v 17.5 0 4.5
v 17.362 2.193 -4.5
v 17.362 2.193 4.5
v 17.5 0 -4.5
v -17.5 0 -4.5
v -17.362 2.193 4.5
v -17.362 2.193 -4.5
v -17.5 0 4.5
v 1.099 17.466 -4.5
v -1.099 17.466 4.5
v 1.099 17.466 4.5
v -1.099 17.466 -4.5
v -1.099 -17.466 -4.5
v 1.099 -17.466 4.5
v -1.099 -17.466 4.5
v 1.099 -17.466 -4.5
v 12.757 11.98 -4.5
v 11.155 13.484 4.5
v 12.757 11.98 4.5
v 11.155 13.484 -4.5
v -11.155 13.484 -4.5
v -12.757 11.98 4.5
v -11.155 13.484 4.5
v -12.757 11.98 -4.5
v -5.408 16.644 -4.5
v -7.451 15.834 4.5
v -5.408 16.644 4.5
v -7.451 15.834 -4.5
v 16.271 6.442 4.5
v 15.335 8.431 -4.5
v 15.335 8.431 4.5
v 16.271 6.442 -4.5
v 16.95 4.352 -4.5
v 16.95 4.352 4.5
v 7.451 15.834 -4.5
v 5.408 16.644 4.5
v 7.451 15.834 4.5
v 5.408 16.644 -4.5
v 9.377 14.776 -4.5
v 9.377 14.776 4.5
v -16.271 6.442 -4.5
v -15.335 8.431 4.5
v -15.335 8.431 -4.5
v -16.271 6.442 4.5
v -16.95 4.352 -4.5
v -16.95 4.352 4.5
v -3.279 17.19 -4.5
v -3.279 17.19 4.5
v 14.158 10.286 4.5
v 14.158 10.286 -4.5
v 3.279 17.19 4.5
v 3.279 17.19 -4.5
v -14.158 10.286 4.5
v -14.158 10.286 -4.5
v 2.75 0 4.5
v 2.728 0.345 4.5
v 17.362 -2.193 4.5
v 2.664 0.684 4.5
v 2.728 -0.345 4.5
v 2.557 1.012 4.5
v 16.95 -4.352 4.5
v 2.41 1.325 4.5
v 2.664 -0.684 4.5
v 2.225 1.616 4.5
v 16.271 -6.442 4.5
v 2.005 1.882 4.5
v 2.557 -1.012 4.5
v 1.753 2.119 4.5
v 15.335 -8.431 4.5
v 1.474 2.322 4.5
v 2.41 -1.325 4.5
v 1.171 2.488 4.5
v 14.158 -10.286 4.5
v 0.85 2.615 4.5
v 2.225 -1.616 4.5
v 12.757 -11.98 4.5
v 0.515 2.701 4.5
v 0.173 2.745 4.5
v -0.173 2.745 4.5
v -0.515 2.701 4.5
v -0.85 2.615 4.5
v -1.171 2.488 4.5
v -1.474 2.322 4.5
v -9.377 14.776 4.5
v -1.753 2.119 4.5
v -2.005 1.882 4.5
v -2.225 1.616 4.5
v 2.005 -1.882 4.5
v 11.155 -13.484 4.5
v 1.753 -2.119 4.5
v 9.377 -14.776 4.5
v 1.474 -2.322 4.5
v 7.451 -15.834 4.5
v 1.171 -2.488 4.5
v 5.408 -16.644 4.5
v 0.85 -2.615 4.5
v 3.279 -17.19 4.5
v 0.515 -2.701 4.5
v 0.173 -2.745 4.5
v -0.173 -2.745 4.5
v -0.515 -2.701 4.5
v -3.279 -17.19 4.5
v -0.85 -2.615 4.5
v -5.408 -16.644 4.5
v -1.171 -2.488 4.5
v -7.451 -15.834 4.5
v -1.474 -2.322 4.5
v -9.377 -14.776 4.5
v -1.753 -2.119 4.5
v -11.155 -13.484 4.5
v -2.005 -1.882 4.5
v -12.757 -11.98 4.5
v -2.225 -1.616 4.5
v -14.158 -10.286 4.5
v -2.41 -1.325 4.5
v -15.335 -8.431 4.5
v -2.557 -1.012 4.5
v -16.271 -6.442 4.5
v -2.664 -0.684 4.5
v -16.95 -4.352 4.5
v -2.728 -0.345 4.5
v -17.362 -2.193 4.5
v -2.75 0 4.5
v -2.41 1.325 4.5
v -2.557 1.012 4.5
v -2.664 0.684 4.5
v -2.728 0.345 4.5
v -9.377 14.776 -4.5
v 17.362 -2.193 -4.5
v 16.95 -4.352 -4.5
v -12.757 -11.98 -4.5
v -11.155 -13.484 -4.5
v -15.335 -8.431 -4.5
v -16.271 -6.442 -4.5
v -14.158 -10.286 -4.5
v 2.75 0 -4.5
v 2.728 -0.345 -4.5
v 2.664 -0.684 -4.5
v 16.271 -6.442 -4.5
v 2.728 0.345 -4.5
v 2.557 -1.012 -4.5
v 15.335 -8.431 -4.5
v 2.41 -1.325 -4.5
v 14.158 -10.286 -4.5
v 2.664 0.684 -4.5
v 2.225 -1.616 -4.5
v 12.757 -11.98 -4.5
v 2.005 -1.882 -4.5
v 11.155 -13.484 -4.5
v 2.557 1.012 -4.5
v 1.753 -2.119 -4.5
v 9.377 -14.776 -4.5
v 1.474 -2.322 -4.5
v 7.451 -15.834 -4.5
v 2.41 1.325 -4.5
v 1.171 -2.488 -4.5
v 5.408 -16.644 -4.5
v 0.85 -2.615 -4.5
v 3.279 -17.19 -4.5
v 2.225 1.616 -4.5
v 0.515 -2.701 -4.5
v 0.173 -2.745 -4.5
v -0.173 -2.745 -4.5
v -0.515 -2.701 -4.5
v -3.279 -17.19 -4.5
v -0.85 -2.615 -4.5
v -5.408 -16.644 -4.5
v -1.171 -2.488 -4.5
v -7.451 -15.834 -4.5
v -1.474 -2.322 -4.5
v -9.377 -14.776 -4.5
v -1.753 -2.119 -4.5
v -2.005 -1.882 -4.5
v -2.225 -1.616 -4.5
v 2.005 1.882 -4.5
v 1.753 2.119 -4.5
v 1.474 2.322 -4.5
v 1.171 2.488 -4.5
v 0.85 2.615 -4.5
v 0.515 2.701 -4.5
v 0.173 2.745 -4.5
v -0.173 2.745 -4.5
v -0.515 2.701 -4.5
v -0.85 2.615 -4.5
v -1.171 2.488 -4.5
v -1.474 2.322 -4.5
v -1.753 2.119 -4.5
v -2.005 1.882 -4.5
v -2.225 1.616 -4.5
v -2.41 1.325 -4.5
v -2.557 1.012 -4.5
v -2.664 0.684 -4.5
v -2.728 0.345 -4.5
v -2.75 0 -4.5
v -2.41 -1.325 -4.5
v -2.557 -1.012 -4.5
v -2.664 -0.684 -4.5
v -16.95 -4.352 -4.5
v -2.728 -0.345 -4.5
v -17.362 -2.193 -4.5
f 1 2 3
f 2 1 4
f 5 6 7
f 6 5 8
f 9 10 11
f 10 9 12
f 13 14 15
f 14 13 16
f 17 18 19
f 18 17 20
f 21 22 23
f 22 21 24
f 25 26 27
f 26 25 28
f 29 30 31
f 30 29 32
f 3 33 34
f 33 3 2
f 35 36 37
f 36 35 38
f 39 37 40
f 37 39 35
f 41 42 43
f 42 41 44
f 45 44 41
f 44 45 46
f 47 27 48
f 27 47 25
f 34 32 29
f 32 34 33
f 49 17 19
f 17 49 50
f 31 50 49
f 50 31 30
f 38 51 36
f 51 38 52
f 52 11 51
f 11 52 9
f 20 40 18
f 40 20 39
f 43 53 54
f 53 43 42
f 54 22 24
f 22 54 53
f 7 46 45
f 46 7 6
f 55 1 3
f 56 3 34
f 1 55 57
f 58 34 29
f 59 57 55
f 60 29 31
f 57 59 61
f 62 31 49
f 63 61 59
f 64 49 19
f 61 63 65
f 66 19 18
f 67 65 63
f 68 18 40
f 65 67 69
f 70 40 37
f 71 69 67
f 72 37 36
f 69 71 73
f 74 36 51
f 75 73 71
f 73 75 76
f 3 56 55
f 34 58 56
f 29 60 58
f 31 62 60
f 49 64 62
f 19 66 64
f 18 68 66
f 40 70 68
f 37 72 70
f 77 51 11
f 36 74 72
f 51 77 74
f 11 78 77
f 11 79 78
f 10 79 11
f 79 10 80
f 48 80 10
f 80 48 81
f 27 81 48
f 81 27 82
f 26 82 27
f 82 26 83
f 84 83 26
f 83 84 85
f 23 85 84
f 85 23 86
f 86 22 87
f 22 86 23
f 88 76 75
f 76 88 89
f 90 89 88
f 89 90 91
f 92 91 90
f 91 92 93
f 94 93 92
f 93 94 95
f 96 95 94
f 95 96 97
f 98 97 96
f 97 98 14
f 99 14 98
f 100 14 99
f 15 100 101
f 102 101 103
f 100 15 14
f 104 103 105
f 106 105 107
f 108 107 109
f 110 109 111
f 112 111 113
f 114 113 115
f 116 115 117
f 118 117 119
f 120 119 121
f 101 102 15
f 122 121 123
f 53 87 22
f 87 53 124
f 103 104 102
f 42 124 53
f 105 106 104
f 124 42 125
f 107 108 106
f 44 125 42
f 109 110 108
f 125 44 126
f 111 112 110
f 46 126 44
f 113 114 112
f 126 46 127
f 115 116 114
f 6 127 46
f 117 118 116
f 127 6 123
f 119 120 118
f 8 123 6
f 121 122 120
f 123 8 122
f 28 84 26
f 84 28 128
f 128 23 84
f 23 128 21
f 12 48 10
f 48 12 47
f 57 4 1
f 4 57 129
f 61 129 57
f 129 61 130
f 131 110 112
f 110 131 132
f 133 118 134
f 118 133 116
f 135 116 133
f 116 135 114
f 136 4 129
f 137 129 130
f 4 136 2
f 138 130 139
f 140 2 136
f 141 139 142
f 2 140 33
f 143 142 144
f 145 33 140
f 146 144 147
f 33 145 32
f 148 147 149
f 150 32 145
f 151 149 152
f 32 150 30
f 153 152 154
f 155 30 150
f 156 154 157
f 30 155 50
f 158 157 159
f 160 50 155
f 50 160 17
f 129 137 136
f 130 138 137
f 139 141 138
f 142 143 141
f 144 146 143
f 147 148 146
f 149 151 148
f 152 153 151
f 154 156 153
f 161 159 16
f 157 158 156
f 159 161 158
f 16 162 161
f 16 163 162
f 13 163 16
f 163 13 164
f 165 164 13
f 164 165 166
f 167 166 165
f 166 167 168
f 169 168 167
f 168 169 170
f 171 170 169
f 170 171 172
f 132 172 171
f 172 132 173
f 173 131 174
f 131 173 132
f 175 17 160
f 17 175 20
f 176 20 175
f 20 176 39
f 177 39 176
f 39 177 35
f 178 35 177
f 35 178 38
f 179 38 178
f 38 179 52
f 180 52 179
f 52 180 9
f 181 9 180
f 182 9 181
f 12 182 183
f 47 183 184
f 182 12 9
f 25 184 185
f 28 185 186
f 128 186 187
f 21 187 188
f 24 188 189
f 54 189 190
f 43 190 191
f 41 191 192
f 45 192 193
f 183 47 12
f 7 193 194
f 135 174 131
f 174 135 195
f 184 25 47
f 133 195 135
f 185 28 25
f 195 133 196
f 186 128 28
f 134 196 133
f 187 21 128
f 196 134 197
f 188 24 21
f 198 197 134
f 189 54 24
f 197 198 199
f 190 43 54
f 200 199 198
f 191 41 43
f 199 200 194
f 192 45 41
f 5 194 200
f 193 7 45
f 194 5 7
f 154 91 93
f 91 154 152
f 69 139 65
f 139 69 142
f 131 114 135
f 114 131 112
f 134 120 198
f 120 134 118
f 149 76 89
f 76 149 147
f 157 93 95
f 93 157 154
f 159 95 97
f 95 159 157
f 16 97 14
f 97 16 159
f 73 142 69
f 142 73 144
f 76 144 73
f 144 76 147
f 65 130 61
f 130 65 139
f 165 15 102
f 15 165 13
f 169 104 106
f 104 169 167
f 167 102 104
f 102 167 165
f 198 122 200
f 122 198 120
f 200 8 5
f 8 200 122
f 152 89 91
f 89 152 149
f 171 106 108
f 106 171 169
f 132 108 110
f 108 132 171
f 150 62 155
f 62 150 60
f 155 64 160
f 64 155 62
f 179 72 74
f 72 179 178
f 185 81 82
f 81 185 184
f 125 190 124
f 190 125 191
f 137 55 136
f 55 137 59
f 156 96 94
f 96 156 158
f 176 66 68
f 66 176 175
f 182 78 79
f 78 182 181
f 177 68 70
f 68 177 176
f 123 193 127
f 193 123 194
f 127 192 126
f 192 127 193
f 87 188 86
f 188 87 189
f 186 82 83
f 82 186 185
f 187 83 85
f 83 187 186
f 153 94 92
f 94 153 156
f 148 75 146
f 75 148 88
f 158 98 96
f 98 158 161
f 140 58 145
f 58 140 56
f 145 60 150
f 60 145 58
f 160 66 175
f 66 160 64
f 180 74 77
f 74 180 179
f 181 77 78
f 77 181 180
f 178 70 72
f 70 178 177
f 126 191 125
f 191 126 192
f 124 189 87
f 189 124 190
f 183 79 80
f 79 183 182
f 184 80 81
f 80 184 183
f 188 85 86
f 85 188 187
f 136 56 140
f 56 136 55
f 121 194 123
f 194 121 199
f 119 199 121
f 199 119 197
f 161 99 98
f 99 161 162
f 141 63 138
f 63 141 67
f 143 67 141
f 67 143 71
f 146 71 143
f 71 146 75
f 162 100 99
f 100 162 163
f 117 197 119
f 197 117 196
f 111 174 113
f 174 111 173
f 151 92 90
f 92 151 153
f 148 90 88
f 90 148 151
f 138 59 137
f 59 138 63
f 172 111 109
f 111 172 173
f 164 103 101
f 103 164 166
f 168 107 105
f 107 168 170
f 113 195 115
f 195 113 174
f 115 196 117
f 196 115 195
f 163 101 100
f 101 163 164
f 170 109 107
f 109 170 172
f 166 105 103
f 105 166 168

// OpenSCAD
$fn = 50;


difference() {
	union() {
		translate(v = [0, 0, -4.5000000000]) {
			cylinder(h = 9, r = 17.5000000000);
		}
	}
	union() {
		translate(v = [0, 0, -100.0000000000]) {
			cylinder(h = 200, r = 2.7500000000);
		}
	}
}
